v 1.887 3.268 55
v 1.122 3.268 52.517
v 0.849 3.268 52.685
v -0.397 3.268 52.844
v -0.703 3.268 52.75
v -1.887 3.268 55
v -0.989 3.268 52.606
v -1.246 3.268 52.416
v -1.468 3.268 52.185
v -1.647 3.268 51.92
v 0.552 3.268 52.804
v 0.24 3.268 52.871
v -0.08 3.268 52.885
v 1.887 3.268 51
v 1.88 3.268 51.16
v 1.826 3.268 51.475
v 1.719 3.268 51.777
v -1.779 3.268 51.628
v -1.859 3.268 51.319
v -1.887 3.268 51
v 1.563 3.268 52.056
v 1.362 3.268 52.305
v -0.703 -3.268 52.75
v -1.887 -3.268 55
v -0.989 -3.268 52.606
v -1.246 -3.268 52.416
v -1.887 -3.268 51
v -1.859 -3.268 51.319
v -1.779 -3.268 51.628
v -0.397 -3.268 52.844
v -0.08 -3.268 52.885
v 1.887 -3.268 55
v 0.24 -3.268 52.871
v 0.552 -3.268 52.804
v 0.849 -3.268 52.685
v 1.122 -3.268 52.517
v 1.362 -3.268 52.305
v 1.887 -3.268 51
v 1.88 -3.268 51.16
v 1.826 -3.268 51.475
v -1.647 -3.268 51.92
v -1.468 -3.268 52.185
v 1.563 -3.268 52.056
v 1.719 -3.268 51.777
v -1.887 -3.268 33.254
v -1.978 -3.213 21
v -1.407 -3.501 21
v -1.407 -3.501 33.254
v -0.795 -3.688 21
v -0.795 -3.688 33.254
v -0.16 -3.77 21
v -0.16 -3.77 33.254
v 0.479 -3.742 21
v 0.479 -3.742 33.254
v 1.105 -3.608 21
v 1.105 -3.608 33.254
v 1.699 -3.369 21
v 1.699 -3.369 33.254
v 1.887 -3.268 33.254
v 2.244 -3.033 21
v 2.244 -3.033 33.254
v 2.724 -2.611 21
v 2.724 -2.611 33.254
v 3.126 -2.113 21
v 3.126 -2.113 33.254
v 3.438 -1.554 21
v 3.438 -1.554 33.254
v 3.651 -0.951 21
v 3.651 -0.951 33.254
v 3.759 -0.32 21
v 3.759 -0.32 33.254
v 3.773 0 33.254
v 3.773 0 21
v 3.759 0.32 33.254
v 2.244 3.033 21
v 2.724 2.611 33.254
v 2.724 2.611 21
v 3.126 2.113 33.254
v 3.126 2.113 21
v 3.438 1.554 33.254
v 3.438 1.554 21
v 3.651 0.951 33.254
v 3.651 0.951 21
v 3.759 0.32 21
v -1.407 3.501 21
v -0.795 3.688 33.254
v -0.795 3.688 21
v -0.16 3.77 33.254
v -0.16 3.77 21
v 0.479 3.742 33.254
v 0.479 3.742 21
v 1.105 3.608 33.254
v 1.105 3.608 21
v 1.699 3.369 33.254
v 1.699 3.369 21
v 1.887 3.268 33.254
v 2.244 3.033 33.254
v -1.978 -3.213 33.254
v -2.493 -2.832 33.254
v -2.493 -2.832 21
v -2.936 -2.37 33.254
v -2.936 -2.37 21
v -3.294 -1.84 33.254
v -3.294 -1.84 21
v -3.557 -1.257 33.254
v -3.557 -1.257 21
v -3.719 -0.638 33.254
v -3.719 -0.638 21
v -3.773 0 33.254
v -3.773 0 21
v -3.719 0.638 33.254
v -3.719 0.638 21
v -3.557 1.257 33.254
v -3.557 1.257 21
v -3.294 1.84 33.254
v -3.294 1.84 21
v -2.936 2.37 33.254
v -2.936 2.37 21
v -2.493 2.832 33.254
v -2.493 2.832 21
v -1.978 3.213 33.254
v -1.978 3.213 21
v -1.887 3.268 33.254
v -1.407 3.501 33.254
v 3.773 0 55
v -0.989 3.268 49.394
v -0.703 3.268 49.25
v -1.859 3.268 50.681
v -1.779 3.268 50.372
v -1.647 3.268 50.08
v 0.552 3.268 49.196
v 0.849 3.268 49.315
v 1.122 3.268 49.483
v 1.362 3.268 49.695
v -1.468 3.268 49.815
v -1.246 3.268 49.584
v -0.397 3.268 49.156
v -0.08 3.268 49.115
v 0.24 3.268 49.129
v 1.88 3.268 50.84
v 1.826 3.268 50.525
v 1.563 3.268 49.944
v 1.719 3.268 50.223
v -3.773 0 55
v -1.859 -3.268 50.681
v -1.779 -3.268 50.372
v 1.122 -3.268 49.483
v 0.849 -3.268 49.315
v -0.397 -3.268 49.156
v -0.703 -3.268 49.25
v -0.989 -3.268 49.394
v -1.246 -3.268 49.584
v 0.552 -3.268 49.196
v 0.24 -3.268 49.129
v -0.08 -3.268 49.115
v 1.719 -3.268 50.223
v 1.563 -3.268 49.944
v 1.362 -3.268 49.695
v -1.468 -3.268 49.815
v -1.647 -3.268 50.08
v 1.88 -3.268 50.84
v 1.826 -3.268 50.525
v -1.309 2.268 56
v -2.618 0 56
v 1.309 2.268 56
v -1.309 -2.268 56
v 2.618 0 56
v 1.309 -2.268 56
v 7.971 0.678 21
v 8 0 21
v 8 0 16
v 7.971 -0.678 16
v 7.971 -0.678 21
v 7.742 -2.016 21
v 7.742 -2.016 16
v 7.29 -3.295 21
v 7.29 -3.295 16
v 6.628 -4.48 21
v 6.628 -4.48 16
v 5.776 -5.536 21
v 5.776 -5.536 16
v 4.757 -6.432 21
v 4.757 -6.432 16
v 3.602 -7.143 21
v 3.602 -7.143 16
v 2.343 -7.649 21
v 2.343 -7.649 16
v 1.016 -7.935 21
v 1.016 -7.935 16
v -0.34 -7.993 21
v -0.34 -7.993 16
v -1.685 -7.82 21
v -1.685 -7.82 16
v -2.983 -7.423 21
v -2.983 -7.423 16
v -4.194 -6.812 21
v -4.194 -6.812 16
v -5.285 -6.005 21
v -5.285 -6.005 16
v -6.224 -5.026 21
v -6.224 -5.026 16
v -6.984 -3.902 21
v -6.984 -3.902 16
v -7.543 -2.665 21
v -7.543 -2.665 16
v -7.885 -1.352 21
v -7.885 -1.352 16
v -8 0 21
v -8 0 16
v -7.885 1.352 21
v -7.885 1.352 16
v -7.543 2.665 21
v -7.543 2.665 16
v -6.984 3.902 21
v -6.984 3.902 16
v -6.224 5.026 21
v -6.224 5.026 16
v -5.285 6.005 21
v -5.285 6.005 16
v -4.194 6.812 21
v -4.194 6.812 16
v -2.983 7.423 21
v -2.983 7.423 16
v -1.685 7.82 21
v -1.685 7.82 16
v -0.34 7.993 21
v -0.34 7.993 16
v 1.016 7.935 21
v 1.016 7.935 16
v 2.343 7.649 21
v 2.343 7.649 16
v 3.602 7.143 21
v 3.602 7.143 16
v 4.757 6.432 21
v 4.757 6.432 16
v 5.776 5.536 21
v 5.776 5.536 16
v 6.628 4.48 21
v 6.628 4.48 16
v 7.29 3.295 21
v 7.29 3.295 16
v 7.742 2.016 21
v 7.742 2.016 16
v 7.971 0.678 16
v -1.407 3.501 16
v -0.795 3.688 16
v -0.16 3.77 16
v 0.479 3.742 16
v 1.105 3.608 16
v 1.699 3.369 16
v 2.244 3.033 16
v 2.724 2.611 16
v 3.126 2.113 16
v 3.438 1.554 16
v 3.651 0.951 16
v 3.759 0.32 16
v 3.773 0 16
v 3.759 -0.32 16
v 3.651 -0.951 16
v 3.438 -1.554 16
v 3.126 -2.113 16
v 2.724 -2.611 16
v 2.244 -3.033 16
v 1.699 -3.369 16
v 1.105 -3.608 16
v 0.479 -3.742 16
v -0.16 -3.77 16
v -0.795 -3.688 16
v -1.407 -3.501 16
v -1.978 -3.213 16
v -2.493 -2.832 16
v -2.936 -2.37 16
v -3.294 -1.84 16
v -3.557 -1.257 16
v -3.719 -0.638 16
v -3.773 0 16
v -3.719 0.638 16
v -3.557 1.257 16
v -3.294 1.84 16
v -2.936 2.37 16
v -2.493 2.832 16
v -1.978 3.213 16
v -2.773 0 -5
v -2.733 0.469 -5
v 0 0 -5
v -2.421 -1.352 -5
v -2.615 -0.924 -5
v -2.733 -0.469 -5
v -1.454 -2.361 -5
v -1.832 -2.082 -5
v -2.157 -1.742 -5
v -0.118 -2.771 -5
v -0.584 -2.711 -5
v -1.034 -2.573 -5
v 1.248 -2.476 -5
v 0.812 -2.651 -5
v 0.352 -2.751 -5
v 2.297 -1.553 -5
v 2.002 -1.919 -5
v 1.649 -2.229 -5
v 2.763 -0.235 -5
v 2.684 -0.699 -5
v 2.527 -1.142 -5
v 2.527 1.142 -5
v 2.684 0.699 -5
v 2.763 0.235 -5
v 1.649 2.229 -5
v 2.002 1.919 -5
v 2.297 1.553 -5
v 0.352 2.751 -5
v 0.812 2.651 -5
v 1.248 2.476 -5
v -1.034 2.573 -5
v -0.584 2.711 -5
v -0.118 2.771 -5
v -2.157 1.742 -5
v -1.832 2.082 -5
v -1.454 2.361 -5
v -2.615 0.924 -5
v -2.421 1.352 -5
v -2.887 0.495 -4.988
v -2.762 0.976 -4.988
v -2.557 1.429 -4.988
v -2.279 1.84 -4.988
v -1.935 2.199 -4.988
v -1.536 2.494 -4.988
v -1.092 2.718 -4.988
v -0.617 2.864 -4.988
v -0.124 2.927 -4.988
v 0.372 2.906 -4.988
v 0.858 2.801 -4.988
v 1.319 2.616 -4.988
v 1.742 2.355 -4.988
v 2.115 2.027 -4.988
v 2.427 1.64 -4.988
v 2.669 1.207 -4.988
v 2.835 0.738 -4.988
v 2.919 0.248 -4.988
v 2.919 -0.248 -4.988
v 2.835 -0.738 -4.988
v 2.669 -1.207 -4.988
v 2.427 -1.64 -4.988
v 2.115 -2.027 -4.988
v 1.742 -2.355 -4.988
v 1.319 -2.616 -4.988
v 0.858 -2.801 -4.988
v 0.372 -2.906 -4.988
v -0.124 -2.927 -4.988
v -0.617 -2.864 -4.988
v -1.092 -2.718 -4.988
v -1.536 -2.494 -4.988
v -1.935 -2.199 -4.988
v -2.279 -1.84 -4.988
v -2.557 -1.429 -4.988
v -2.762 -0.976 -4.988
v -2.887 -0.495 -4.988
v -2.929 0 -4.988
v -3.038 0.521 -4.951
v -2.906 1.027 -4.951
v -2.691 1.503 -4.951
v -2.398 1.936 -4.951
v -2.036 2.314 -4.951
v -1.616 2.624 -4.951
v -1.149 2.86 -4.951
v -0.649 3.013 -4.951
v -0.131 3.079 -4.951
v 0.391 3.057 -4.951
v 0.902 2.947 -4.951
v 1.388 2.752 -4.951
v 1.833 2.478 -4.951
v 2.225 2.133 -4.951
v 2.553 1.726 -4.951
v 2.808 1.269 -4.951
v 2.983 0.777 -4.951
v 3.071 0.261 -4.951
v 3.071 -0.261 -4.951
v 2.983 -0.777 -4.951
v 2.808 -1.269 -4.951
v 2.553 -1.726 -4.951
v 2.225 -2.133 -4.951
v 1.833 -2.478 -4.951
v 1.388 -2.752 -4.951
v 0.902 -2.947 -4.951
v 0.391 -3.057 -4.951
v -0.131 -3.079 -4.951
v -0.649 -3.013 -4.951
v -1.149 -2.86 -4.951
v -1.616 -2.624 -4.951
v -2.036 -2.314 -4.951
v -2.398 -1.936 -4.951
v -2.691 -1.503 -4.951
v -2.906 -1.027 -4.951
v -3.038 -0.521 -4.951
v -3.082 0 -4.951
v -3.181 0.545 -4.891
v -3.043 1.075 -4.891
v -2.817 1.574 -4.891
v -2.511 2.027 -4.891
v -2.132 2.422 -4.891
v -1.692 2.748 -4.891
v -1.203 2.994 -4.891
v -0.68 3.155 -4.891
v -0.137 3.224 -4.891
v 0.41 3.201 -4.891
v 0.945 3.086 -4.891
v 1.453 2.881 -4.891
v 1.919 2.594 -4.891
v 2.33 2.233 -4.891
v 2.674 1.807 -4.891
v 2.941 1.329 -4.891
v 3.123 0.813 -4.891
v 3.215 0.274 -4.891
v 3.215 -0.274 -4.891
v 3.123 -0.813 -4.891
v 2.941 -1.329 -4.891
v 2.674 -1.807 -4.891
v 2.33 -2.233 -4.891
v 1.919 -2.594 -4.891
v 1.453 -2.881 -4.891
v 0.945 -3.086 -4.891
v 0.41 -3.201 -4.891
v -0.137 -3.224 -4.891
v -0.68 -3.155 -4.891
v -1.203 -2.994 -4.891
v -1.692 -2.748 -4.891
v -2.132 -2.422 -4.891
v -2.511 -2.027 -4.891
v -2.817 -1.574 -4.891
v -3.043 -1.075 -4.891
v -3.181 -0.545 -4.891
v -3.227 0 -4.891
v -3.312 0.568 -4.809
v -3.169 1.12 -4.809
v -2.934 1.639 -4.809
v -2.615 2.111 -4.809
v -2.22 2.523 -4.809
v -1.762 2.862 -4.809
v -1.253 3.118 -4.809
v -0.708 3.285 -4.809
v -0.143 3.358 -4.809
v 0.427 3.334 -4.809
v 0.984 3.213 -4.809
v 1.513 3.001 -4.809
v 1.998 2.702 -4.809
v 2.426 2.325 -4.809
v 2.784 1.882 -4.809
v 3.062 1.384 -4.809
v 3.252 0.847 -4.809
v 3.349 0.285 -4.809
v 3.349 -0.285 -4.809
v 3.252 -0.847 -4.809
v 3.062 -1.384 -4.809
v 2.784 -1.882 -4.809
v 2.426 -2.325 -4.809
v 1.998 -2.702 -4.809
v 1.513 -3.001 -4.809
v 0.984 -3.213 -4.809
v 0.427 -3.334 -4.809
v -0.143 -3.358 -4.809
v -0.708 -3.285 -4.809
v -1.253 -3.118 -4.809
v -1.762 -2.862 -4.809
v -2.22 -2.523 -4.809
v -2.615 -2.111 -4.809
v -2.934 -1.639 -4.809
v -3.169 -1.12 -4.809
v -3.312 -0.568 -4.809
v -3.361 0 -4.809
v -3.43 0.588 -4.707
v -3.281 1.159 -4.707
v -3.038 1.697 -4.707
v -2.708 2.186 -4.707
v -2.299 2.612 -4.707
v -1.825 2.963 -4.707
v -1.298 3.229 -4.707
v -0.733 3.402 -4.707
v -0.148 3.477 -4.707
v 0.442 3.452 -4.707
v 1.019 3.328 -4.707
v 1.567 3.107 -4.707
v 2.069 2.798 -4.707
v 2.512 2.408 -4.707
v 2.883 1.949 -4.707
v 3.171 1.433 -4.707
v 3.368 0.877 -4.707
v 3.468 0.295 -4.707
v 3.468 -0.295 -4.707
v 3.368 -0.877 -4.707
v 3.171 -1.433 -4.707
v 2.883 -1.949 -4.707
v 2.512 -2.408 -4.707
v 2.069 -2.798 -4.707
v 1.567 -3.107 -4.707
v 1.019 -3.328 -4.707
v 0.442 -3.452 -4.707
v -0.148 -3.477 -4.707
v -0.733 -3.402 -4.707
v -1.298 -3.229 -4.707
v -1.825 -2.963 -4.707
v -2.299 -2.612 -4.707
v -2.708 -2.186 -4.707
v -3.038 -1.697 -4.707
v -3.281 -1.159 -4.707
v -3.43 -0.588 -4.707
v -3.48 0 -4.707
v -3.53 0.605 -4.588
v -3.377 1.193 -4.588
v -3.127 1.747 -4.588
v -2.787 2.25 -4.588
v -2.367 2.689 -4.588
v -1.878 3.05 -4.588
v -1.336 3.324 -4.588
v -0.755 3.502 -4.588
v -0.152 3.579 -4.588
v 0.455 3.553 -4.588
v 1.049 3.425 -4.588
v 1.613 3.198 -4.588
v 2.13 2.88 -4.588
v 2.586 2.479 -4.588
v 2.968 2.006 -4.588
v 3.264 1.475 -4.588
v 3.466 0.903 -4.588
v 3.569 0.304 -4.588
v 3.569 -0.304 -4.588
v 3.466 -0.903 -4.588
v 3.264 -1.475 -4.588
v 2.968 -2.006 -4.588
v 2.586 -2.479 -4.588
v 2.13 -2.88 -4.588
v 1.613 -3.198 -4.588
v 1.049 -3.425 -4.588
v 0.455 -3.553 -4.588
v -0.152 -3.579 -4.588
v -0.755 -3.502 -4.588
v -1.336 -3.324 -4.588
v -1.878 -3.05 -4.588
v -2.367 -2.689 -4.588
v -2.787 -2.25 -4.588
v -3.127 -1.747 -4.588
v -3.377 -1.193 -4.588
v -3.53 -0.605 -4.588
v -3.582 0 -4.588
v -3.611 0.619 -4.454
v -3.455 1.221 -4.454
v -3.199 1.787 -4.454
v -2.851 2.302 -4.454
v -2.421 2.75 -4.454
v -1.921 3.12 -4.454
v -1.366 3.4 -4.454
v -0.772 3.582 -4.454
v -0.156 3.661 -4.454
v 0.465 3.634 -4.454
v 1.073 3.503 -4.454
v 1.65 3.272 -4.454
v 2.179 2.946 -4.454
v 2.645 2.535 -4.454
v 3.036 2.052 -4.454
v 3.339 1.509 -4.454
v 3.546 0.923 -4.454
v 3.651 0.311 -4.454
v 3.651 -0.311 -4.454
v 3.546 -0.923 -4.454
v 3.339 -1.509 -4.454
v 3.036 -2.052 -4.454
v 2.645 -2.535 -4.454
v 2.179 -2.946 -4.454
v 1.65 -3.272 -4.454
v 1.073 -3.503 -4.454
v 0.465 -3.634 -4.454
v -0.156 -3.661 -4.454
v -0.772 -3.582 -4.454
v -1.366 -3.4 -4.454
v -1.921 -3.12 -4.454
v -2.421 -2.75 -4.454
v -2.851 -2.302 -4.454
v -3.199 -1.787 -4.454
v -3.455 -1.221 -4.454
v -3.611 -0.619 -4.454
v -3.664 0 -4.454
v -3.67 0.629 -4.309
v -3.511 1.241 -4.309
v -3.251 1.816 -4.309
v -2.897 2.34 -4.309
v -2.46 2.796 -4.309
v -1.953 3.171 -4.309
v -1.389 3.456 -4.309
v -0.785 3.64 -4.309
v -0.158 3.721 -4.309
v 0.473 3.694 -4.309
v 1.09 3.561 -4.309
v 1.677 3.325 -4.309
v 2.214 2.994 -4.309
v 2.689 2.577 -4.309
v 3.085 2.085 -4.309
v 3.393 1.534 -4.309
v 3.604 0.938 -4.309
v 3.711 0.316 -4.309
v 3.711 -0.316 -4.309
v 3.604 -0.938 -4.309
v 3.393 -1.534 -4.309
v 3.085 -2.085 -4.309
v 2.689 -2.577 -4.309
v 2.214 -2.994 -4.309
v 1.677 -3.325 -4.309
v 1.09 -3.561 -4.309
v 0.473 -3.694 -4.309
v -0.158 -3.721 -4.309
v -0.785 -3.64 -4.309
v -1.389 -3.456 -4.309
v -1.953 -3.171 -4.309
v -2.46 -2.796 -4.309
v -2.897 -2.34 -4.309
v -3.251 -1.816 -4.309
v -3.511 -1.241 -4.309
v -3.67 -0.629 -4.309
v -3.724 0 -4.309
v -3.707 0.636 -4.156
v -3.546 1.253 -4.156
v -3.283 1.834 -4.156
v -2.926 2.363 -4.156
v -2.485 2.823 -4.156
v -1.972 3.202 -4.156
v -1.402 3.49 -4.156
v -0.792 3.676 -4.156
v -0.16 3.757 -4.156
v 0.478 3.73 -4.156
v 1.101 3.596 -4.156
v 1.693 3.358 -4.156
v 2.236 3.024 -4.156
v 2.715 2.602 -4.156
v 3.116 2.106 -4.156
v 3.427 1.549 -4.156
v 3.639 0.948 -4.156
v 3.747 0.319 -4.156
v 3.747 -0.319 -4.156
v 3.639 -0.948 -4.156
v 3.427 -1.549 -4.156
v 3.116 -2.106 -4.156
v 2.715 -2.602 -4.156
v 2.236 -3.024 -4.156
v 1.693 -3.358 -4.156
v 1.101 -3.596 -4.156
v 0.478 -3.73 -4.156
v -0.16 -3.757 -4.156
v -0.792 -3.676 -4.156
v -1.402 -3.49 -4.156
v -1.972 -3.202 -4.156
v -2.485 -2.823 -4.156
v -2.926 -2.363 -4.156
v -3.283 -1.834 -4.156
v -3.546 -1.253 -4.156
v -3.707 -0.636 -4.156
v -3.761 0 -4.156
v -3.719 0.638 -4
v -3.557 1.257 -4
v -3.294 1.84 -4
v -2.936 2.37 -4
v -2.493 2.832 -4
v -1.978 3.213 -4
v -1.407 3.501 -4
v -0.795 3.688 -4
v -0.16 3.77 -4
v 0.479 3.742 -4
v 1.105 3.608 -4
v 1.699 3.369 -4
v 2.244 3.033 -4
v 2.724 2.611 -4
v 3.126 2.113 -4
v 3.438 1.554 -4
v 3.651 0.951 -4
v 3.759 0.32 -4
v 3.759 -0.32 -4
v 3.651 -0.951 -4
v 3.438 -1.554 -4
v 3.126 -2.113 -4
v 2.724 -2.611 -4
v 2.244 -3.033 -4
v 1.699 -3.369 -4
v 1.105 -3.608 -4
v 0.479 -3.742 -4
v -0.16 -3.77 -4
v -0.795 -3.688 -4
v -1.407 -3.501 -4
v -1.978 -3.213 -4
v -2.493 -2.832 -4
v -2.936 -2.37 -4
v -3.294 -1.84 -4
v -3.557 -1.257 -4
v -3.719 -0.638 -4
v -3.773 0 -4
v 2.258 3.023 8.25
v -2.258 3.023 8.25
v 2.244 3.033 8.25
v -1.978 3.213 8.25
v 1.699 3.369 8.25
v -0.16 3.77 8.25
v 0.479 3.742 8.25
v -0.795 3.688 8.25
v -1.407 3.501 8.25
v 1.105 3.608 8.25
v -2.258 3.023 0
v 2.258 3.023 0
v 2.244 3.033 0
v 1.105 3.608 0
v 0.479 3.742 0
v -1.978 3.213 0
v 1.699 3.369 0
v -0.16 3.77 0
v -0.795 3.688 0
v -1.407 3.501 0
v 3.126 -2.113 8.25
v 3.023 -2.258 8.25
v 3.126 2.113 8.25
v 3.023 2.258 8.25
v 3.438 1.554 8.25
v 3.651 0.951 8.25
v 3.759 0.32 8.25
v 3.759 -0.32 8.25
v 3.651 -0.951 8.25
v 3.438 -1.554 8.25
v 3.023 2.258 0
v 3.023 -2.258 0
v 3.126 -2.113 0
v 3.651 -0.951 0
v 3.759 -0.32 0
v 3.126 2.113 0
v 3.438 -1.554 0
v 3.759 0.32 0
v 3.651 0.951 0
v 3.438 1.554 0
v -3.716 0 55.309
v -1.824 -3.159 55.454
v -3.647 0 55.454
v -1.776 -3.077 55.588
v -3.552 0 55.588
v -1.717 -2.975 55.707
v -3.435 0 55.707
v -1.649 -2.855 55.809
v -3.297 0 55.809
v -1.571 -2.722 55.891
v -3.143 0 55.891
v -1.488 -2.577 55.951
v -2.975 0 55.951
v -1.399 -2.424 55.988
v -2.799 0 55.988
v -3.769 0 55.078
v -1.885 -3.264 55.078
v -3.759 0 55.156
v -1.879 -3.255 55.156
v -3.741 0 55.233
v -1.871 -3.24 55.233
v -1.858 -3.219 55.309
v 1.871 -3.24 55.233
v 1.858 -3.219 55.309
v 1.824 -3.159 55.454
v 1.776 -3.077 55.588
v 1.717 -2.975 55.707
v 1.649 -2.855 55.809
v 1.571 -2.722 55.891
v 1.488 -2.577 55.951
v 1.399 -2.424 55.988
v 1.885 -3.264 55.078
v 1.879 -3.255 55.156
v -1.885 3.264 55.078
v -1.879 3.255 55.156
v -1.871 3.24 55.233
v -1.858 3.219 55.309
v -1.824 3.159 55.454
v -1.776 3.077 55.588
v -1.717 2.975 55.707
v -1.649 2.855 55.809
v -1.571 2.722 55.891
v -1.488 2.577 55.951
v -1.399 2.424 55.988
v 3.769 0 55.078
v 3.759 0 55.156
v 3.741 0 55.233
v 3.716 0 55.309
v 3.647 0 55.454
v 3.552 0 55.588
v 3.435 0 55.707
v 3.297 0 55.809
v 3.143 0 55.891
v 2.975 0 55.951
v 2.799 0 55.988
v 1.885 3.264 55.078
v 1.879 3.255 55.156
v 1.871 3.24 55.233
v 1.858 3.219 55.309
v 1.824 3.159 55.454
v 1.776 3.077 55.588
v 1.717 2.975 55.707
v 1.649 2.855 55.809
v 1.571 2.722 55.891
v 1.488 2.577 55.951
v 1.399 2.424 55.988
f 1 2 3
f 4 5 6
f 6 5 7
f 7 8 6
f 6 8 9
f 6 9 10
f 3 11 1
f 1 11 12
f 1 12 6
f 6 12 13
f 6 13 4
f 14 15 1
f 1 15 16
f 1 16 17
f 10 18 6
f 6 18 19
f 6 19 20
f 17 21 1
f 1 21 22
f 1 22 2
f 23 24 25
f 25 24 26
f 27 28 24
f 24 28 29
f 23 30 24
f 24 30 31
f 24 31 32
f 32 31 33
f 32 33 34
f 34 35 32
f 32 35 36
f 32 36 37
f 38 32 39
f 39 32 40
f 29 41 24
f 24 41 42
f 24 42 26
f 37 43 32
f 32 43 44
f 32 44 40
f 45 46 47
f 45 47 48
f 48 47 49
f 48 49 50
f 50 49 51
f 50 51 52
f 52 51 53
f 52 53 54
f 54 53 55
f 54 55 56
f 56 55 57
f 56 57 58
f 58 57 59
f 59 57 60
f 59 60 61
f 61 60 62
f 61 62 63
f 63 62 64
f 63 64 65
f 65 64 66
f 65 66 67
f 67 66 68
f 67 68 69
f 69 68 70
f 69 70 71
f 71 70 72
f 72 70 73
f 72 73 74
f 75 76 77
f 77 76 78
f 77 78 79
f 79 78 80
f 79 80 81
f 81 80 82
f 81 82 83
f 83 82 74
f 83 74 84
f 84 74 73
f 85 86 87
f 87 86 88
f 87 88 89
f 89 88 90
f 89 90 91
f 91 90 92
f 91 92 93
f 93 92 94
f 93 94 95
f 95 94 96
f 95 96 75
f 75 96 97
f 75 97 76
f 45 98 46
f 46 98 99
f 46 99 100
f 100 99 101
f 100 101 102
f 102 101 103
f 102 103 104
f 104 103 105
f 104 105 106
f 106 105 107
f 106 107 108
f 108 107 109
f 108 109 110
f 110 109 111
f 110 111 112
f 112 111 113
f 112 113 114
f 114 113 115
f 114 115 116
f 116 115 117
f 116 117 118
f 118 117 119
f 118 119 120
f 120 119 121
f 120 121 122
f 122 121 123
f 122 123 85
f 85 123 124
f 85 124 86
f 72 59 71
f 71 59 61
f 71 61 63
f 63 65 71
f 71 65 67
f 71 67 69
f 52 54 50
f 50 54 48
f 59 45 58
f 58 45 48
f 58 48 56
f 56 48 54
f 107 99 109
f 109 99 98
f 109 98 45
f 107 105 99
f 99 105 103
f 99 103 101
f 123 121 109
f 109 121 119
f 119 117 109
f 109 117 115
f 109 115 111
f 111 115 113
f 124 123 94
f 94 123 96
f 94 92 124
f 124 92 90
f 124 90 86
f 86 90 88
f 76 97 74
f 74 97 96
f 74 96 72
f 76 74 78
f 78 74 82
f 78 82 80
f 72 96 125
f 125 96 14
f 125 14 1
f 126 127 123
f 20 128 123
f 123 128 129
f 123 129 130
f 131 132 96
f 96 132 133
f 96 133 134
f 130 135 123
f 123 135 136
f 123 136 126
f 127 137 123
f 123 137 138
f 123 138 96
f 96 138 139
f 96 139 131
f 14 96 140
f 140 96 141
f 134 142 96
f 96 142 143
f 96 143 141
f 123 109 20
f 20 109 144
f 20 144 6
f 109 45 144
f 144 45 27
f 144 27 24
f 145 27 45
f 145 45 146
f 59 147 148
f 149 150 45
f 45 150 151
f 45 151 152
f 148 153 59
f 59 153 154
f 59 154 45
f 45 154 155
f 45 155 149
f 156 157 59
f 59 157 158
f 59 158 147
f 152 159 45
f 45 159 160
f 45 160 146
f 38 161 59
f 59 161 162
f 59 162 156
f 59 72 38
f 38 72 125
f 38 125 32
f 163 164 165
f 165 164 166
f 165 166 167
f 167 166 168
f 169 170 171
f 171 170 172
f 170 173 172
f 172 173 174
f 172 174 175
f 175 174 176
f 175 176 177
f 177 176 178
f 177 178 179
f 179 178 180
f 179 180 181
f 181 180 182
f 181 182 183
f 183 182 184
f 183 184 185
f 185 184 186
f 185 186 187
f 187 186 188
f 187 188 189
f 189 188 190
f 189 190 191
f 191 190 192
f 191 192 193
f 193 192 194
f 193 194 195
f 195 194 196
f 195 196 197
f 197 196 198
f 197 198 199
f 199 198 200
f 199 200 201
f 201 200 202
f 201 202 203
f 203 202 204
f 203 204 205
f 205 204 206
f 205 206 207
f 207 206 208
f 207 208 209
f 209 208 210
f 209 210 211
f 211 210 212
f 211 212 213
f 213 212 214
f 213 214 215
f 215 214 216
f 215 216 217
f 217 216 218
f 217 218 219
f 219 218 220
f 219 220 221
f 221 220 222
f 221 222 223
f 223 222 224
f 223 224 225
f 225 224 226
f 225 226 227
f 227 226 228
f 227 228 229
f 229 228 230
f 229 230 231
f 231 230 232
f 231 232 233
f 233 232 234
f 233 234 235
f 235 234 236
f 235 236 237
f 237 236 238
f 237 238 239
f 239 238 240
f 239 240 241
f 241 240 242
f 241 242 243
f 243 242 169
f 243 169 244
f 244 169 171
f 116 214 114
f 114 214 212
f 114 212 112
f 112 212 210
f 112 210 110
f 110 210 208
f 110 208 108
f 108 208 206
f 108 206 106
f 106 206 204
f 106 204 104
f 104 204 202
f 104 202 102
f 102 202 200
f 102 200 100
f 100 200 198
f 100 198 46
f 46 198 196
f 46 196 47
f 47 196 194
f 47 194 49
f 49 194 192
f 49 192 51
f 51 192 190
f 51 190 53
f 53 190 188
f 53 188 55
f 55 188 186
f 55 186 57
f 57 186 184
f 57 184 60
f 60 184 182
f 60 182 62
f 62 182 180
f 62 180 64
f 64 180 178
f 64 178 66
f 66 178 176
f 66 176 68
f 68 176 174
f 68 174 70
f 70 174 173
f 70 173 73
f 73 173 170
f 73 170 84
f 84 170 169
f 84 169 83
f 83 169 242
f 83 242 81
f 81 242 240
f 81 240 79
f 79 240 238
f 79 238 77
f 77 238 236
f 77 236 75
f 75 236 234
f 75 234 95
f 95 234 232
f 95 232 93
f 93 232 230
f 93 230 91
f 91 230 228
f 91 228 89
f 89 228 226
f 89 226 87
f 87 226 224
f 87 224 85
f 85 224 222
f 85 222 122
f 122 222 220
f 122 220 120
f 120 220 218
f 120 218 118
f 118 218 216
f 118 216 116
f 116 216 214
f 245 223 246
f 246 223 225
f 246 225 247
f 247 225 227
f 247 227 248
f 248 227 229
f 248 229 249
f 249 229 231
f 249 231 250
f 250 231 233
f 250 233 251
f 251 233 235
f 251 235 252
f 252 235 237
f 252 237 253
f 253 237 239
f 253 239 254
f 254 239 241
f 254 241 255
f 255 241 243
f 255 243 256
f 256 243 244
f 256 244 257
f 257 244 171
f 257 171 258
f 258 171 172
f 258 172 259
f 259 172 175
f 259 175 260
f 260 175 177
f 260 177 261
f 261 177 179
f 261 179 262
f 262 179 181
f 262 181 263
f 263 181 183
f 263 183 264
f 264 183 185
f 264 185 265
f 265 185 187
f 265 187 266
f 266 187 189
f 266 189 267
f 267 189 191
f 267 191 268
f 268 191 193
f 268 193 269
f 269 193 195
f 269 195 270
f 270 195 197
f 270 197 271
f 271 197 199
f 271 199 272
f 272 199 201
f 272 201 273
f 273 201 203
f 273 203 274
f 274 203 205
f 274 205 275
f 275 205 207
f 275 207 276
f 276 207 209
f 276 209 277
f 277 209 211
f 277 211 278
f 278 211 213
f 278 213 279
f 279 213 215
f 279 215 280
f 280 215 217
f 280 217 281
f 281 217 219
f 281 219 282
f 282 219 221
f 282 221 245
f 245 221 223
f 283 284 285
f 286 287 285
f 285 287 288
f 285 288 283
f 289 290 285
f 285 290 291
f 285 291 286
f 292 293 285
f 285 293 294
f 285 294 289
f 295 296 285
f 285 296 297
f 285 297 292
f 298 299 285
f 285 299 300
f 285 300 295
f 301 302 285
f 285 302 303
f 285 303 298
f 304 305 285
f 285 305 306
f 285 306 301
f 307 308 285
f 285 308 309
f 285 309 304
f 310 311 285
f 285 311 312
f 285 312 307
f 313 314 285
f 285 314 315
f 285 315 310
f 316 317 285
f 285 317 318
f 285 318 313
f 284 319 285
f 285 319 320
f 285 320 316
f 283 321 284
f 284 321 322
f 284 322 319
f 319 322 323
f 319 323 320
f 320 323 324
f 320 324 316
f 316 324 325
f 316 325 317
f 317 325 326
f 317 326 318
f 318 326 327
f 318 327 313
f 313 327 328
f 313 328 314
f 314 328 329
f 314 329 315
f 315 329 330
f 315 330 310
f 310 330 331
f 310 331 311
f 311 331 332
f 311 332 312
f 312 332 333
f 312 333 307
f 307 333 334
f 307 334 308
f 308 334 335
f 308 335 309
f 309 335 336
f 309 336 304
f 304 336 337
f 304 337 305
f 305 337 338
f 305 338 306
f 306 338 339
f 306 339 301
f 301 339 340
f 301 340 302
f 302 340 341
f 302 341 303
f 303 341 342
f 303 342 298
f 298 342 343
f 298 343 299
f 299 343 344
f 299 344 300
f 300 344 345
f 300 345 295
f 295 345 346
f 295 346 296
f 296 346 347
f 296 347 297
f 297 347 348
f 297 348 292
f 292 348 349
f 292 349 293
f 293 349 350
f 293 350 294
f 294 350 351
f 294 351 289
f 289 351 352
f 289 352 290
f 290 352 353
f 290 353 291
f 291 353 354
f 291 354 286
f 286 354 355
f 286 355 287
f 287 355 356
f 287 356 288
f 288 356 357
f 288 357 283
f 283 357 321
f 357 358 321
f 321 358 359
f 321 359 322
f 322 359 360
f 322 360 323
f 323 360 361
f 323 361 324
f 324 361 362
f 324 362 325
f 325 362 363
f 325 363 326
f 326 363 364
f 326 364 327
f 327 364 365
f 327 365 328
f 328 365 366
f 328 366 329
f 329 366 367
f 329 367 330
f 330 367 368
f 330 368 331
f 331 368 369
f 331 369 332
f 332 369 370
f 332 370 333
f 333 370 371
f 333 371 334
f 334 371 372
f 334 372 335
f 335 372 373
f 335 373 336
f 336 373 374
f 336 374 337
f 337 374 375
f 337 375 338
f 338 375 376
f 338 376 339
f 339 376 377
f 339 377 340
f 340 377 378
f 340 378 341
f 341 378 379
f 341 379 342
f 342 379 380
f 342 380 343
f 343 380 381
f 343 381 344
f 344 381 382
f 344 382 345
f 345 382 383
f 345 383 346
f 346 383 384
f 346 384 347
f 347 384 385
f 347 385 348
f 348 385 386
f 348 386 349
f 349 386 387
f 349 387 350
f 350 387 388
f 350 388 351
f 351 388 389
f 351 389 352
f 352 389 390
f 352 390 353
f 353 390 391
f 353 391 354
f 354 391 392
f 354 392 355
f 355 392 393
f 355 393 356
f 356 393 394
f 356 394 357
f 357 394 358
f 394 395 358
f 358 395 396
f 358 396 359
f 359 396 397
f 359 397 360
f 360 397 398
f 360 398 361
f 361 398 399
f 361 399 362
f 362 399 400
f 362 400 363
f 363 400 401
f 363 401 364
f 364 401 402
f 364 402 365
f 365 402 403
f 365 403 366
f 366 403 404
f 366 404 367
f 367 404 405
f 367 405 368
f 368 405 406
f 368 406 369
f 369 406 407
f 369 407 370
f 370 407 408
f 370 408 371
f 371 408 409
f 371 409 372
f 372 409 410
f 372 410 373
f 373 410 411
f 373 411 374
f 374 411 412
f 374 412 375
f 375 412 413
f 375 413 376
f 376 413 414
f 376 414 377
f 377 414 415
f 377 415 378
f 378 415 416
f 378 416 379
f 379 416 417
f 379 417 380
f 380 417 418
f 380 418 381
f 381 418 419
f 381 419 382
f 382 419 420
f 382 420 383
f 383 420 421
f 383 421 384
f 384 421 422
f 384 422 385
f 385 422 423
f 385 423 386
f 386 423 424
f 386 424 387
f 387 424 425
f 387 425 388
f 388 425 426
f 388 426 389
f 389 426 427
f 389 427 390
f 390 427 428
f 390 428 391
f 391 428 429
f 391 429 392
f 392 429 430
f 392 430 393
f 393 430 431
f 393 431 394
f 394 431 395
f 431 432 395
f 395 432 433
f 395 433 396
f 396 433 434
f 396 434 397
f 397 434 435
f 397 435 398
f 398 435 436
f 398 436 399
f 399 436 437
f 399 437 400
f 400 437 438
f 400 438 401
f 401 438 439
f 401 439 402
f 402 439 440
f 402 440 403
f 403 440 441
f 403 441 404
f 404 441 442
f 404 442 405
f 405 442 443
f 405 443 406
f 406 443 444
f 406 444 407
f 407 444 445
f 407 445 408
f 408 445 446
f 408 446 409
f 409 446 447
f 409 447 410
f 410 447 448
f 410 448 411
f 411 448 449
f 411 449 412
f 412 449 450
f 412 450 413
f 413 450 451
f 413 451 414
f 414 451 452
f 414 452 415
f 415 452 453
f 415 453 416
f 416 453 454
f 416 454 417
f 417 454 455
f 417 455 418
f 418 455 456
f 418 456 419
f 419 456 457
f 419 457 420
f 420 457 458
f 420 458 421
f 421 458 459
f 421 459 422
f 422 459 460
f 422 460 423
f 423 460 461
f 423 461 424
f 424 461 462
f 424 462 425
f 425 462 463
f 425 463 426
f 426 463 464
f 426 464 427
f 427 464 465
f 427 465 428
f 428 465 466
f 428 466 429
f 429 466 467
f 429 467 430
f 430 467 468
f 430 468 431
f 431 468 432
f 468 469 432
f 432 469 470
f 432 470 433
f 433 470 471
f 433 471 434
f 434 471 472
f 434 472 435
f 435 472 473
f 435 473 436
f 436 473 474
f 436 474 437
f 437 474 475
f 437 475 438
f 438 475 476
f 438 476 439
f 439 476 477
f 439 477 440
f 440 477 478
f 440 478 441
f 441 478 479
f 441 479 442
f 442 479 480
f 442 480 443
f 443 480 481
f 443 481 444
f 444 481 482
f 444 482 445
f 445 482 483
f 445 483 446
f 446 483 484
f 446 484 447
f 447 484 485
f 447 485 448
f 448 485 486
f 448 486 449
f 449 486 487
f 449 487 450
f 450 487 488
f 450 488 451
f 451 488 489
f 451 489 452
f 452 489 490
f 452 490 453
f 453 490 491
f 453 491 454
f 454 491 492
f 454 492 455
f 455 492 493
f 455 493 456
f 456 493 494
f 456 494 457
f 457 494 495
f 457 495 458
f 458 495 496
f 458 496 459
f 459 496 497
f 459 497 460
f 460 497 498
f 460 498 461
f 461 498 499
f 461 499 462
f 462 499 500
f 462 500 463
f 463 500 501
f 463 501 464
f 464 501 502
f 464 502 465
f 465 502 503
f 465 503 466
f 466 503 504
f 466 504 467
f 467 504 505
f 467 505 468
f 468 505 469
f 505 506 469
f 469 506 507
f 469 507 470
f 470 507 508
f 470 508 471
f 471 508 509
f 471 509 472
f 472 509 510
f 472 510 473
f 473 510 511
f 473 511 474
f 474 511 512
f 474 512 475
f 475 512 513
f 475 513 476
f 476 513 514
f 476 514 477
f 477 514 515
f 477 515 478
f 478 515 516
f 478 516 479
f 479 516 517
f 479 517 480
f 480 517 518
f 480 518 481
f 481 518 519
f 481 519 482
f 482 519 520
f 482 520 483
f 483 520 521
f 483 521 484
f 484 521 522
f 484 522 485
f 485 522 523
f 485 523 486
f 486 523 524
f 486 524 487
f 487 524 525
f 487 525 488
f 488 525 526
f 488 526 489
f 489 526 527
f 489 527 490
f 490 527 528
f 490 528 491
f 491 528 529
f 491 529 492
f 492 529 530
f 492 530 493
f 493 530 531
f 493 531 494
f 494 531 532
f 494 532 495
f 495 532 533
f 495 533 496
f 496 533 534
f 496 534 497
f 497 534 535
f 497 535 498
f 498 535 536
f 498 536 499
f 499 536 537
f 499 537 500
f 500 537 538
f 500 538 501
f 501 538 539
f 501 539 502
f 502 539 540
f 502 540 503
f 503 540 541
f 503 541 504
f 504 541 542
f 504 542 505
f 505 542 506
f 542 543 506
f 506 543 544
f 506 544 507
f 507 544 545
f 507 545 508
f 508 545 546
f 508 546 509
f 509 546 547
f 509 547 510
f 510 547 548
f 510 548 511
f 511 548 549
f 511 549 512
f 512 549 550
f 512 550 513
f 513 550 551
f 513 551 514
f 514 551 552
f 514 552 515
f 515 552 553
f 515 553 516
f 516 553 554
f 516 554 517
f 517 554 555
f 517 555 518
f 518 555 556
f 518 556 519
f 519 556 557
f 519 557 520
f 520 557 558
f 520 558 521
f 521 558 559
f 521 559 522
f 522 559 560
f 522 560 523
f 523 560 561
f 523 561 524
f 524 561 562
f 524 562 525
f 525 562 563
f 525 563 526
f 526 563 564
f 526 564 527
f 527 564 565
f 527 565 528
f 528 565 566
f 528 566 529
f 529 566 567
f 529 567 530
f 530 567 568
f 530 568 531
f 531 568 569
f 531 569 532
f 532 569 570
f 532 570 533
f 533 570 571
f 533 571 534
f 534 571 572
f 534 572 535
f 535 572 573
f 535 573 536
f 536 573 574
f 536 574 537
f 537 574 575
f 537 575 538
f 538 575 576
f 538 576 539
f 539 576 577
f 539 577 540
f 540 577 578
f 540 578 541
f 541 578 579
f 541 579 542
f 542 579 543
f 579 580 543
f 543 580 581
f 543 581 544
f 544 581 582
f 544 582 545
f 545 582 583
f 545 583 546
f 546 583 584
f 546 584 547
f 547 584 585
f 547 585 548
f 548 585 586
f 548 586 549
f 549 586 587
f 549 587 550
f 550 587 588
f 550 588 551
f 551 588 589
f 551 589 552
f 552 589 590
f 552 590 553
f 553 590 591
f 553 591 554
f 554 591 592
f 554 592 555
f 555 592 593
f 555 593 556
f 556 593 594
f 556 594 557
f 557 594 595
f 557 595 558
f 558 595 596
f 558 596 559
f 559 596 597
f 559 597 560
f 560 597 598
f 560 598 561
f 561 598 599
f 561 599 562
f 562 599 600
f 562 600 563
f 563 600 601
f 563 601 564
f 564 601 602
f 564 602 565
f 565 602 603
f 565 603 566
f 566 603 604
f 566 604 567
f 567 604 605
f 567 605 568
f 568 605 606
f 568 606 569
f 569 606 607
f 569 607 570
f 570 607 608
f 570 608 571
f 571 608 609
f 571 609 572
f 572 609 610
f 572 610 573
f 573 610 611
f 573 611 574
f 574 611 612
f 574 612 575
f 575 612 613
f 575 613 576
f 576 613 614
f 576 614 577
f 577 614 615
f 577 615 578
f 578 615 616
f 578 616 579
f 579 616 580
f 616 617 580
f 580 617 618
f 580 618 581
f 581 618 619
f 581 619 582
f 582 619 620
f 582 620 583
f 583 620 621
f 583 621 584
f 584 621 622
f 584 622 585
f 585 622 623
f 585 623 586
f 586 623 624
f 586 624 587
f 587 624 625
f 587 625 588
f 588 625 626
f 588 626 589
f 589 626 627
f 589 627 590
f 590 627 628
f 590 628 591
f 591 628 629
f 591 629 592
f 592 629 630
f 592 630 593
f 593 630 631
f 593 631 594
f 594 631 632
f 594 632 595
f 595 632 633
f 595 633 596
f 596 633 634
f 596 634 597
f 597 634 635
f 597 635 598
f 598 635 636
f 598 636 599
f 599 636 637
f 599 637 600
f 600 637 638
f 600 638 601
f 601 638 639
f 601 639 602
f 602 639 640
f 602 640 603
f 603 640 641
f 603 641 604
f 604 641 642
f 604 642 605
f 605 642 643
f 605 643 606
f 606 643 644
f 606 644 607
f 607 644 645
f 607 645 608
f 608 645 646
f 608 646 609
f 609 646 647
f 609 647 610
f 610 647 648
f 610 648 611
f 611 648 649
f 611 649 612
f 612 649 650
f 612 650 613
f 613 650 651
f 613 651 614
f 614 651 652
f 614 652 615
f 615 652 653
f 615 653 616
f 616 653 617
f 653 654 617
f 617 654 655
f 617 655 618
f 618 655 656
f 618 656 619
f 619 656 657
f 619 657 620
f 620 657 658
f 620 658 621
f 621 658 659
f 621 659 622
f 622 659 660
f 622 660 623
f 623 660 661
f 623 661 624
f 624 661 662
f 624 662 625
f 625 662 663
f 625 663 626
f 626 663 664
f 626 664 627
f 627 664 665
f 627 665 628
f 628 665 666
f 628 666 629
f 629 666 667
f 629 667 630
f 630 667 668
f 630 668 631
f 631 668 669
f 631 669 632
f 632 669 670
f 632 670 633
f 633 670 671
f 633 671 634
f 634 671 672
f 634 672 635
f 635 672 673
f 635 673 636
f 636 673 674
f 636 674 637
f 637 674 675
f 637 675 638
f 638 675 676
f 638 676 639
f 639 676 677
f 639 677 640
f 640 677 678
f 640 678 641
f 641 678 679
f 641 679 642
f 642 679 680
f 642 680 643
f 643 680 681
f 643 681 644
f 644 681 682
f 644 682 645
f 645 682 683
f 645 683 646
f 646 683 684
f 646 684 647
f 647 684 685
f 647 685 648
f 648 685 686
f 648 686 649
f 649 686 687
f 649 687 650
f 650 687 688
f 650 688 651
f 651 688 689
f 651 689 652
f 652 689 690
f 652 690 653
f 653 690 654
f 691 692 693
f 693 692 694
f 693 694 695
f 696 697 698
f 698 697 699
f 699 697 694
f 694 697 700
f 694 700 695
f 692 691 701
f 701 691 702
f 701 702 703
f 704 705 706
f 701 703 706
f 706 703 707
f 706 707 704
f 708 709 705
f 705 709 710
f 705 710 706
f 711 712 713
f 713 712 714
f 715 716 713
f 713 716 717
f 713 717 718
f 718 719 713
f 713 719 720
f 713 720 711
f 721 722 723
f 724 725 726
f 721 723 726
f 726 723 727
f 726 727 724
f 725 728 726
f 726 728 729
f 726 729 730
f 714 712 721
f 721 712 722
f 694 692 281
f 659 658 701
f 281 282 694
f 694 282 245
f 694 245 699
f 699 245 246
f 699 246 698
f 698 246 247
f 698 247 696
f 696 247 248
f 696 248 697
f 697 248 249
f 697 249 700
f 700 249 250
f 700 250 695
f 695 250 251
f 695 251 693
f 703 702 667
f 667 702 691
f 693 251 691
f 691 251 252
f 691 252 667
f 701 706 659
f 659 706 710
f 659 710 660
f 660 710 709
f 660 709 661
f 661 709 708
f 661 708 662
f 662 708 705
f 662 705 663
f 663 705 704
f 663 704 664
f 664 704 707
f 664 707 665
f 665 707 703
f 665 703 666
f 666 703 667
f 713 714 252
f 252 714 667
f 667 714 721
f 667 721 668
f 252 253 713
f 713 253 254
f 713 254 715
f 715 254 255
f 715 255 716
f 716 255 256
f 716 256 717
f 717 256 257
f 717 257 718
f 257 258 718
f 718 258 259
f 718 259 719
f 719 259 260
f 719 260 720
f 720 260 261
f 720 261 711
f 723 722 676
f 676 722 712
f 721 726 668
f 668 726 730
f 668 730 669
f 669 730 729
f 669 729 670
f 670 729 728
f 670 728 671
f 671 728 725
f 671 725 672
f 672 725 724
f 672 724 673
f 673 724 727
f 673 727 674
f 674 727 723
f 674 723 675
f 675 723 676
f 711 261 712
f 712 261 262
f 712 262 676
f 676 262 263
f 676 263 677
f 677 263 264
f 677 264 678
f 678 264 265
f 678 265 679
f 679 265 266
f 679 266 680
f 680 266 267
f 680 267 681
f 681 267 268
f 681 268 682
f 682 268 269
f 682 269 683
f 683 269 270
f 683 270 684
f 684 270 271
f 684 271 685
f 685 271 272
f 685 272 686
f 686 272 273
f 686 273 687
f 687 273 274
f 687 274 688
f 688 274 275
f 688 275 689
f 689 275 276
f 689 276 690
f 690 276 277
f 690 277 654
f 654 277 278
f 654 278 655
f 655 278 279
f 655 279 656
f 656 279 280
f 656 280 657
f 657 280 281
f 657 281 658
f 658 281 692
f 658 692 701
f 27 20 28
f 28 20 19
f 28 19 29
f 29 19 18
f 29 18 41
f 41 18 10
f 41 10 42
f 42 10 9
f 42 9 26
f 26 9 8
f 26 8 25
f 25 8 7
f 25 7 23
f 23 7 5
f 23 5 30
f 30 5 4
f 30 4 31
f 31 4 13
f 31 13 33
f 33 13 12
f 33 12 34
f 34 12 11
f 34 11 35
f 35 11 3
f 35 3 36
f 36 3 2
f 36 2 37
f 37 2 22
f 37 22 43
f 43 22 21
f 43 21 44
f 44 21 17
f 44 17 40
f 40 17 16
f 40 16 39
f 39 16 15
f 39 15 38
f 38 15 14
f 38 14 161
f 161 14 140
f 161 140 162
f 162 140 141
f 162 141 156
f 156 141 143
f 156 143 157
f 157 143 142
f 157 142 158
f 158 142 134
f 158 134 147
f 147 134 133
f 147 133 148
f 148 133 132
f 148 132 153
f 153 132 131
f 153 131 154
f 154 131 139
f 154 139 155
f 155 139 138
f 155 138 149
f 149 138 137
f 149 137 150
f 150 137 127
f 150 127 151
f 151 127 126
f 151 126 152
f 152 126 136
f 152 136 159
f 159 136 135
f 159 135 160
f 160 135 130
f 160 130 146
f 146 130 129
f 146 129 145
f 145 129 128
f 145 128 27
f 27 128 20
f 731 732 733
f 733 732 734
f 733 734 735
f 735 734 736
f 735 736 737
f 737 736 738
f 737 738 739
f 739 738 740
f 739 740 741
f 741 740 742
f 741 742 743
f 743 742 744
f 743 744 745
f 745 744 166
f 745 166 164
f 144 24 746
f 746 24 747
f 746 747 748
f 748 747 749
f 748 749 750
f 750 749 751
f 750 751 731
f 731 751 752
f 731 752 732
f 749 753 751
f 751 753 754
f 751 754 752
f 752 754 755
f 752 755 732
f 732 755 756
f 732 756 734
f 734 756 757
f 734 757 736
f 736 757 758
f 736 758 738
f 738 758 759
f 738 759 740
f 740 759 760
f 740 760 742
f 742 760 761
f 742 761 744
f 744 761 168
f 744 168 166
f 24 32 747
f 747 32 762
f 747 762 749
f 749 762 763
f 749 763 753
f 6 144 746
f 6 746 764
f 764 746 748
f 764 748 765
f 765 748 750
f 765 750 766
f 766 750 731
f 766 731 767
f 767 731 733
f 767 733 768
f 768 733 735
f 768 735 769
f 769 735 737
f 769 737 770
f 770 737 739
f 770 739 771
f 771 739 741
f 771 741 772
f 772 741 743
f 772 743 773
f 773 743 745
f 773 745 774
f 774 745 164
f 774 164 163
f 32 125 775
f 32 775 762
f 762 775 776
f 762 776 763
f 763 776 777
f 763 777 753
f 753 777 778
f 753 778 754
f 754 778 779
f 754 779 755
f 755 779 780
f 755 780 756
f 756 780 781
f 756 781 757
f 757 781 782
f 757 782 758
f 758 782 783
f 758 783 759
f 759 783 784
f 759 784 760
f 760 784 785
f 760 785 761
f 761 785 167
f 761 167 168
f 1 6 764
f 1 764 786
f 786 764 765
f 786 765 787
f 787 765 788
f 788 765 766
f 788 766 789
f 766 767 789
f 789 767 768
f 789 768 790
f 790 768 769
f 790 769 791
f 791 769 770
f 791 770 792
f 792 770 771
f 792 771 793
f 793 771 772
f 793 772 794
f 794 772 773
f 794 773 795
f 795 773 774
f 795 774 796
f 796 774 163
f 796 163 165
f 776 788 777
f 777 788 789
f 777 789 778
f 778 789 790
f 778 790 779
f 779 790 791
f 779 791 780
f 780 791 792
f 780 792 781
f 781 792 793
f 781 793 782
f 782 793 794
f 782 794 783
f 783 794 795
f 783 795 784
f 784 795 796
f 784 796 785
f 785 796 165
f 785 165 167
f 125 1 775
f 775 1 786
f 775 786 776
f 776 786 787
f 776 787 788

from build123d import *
from build123d.topology import SkipClean

# Parameters (mm, degrees)
BOSS_EXTRUDE1_DEPTH  = 8.25
SKETCH2_R            = 3.773
BOSS_EXTRUDE2_DEPTH  = 7.75
BOSS_EXTRUDE3_DEPTH  = 30
BOSS_EXTRUDE4_START  = 8.25
BOSS_EXTRUDE4_DEPTH  = 8.25
BOSS_EXTRUDE6_DEPTH  = 10
SKETCH7_R            = 3.773
BOSS_EXTRUDE7_DEPTH  = 7.254
BOSS_EXTRUDE8_DEPTH  = 10
BOSS_EXTRUDE9_START  = 5
SKETCH9_R            = 3.773
BOSS_EXTRUDE9_DEPTH  = 5
FILLET1_R            = 1
SKETCH10_R           = 8
BOSS_EXTRUDE10_DEPTH = 5
SKETCH11_R           = 1.8865
CUT_EXTRUDE1_DEPTH   = 58.679778678
FILLET2_R            = 1


with BuildPart() as part:
    # Sketch1 → Boss-Extrude1 (new body)
    with BuildSketch(Plane.XY):
        with BuildLine():
            Line((-2.257653649, 3.023), (2.257653649, 3.023))
            ThreePointArc((2.257653649, 3.023), (2.667913885, 2.667913885), (3.023, 2.257653649))
            Line((3.023, 2.257653649), (3.023, -2.257653649))
            ThreePointArc((3.023, -2.257653649), (-2.667913885, -2.667913885), (-2.257653649, 3.023))
        make_face()
        with BuildLine():
            Line((-2.56499937, 0.001798246), (-0.001798246, 2.56499937))
            ThreePointArc((-0.001798246, 2.56499937), (1.813728894, 1.813728894), (2.56499937, -0.001798246))
            Line((2.56499937, -0.001798246), (0.001798246, -2.56499937))
            ThreePointArc((0.001798246, -2.56499937), (-1.813728894, -1.813728894), (-2.56499937, 0.001798246))
        make_face(mode=Mode.SUBTRACT)
    extrude(amount=BOSS_EXTRUDE1_DEPTH)

    # Sketch2 → Boss-Extrude2 (add)
    with SkipClean():  # the faces are left unmerged after this step: merging them gives an invalid solid
        with BuildSketch(Plane.XY.offset(8.25)):
            with Locations(Location((0, 0, 0), (0, 0, 126.753315451))):
                Circle(SKETCH2_R)
        extrude(amount=BOSS_EXTRUDE2_DEPTH)

    # Sketch3 → Boss-Extrude3 (add)
    with SkipClean():  # the faces are left unmerged after this step: merging them gives an invalid solid
        with BuildSketch(Plane.XY.offset(16)):
            Polygon((1.8865, 3.267513848), (-1.8865, 3.267513848), (-3.773, 0), (-1.8865, -3.267513848), (1.8865, -3.267513848), (3.773, 0), align=None)
        extrude(amount=BOSS_EXTRUDE3_DEPTH)

    # Sketch4 → Boss-Extrude4 (add)
    with SkipClean():  # the faces are left unmerged after this step: merging them gives an invalid solid
        with BuildSketch(Plane(origin=(0, 0, 8.25), x_dir=(-1, 0, 0), z_dir=(0, 0, -1)).offset(BOSS_EXTRUDE4_START)):
            with BuildLine():
                Line((-2.56499937, -0.001798246), (-0.001798246, -2.56499937))
                ThreePointArc((-0.001798246, -2.56499937), (1.813728894, -1.813728894), (2.56499937, 0.001798246))
                Line((2.56499937, 0.001798246), (0.001798246, 2.56499937))
                ThreePointArc((0.001798246, 2.56499937), (-1.813728894, 1.813728894), (-2.56499937, -0.001798246))
            make_face()
        extrude(amount=-BOSS_EXTRUDE4_DEPTH)

    # Sketch6 → Boss-Extrude6 (add)
    with SkipClean():  # the faces are left unmerged after this step: merging them gives an invalid solid
        with BuildSketch(Plane.XY.offset(16)):
            with BuildLine():
                ThreePointArc((1.8865, 3.267513848), (0, 3.773), (-1.8865, 3.267513848))
                ThreePointArc((-1.8865, 3.267513848), (-3.267513848, 1.8865), (-3.773, 0))
                ThreePointArc((-3.773, 0), (-3.267513848, -1.8865), (-1.8865, -3.267513848))
                ThreePointArc((-1.8865, -3.267513848), (0, -3.773), (1.8865, -3.267513848))
                ThreePointArc((1.8865, -3.267513848), (3.267513848, -1.8865), (3.773, 0))
                ThreePointArc((3.773, 0), (3.267513848, 1.8865), (1.8865, 3.267513848))
            make_face()
        extrude(amount=BOSS_EXTRUDE6_DEPTH)

    # Sketch7 → Boss-Extrude7 (add)
    with SkipClean():  # the faces are left unmerged after this step: merging them gives an invalid solid
        with BuildSketch(Plane.XY.offset(26)):
            with Locations(Location((0, 0, 0), (0, 0, 180))):
                Circle(SKETCH7_R)
        extrude(amount=BOSS_EXTRUDE7_DEPTH)

    # Sketch8 → Boss-Extrude8 (add)
    with SkipClean():  # the faces are left unmerged after this step: merging them gives an invalid solid
        with BuildSketch(Plane.XY.offset(46)):
            Polygon((3.773, 0), (1.8865, 3.267513848), (-1.8865, 3.267513848), (-3.773, 0), (-1.8865, -3.267513848), (1.8865, -3.267513848), align=None)
        extrude(amount=BOSS_EXTRUDE8_DEPTH)

    # Sketch9 → Boss-Extrude9 (add)
    with SkipClean():  # the faces are left unmerged after this step: merging them gives an invalid solid
        with BuildSketch(Plane(origin=(0, 0, 0), x_dir=(-1, 0, 0), z_dir=(0, 0, -1)).offset(BOSS_EXTRUDE9_START)):
            Circle(SKETCH9_R)
        extrude(amount=-BOSS_EXTRUDE9_DEPTH)

    # Fillet1
    fillet1_edges = [part.edges().sort_by_distance(p)[0] for p in [
        (3.773, 0, -5),
    ]]
    fillet(fillet1_edges, radius=FILLET1_R)

    # Sketch10 → Boss-Extrude10 (add)
    with BuildSketch(Plane.XY.offset(16)):
        Circle(SKETCH10_R)
    extrude(amount=BOSS_EXTRUDE10_DEPTH)

    # Sketch11 → Cut-Extrude1 (cut, through all)
    with SkipClean():  # the faces are left unmerged after this step: merging them gives an invalid solid
        with BuildSketch(Plane(origin=(0, 3.267513848, 0), x_dir=(1, 0, 0), z_dir=(0, 1, 0))):
            with Locations(Location((0, -51, 0), (0, 0, 180))):
                Circle(SKETCH11_R)
        extrude(amount=-CUT_EXTRUDE1_DEPTH, mode=Mode.SUBTRACT)

    # Fillet2
    fillet2_edges = [part.edges().sort_by_distance(p)[0] for p in [
        (2.82975, -1.633756924, 56),
        (2.82975, 1.633756924, 56),
        (0, 3.267513848, 56),
        (-2.82975, 1.633756924, 56),
        (-2.82975, -1.633756924, 56),
        (0, -3.267513848, 56),
    ]]
    fillet(fillet2_edges, radius=FILLET2_R)


solid = part.part
